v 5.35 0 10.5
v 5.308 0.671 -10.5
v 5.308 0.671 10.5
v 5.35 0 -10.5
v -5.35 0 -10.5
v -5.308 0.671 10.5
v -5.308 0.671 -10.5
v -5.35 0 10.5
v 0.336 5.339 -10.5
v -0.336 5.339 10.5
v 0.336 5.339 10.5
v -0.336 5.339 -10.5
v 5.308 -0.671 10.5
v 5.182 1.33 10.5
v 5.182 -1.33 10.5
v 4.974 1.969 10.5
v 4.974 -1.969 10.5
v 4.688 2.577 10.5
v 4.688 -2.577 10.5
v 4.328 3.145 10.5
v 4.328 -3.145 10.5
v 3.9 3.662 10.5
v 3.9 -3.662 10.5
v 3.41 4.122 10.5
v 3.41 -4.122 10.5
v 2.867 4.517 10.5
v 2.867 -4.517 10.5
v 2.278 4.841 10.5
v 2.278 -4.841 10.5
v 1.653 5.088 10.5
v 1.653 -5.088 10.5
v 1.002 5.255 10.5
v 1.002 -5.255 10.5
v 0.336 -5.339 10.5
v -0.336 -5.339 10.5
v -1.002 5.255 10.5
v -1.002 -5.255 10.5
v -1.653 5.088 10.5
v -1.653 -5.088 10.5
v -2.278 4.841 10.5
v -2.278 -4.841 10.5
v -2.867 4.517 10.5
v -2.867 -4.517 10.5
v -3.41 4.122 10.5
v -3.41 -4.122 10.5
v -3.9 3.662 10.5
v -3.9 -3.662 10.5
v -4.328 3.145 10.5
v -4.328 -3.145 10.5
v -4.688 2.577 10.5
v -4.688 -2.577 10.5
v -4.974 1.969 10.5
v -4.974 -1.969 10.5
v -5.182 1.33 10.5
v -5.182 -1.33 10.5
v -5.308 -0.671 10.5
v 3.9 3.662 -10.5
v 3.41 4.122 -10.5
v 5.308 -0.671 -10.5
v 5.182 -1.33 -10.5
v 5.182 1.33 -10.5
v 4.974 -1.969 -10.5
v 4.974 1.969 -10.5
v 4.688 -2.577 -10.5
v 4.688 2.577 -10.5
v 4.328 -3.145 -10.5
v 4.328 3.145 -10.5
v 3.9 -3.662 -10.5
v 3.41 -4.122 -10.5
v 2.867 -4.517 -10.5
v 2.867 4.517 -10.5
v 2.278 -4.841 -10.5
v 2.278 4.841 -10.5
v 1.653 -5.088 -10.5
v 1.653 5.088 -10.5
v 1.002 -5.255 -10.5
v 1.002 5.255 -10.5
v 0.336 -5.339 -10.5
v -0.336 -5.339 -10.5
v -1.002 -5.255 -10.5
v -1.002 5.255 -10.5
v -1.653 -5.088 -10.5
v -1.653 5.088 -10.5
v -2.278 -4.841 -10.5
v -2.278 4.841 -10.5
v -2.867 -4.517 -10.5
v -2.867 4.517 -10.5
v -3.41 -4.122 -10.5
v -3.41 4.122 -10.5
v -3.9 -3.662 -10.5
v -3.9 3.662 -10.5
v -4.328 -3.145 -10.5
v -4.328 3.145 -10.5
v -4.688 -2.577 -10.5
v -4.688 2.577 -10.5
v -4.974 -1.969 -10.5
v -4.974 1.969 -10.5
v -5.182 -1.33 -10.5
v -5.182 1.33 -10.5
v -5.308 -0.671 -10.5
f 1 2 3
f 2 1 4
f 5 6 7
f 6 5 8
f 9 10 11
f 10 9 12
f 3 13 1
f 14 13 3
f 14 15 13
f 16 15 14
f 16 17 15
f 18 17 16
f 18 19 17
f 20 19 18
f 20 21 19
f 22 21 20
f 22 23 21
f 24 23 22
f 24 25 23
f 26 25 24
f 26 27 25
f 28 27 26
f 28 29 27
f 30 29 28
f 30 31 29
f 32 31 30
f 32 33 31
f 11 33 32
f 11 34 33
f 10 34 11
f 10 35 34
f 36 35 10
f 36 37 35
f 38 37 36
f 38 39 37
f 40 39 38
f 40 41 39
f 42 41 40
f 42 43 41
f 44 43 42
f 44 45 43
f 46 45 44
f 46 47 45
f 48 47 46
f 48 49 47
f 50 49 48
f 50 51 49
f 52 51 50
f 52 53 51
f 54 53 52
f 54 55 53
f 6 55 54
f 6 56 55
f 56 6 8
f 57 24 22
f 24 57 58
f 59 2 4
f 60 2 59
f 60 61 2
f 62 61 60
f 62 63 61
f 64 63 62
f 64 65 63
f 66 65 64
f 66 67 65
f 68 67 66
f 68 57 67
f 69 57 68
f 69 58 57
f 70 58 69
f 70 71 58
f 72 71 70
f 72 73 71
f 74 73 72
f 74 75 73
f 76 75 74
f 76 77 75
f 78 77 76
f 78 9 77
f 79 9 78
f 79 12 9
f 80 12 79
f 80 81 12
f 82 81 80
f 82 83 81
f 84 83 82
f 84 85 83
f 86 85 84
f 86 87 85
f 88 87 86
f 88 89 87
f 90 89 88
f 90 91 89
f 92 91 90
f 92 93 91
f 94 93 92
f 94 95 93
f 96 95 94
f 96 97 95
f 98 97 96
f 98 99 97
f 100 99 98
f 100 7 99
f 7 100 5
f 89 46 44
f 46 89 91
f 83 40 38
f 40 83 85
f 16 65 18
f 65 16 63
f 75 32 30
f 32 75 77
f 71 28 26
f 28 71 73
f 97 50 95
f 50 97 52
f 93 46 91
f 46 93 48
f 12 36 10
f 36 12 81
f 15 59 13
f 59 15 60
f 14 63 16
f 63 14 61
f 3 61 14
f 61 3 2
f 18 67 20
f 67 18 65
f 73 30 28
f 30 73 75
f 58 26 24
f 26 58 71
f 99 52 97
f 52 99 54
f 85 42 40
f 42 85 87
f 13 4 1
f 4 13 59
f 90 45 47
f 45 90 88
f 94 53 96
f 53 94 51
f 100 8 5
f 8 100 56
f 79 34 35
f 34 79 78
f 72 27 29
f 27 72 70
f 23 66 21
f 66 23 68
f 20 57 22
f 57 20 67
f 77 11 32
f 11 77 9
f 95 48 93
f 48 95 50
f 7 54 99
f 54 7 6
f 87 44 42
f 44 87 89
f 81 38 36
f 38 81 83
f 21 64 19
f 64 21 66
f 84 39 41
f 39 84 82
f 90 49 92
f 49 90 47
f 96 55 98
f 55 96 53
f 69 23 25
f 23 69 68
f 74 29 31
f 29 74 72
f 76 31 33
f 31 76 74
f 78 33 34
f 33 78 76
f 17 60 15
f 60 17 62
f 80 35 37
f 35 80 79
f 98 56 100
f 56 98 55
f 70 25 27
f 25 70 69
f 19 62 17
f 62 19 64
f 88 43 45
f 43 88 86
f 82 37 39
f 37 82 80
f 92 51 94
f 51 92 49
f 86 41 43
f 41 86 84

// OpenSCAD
$fn = 50;


difference() {
	union() {
		translate(v = [0, 0, -10.5000000000]) {
			cylinder(h = 21, r = 5.3500000000);
		}
	}
	union() {
		translate(v = [0, 0, -100.0000000000]) {
			cylinder(h = 200, r = 0);
		}
	}
}
